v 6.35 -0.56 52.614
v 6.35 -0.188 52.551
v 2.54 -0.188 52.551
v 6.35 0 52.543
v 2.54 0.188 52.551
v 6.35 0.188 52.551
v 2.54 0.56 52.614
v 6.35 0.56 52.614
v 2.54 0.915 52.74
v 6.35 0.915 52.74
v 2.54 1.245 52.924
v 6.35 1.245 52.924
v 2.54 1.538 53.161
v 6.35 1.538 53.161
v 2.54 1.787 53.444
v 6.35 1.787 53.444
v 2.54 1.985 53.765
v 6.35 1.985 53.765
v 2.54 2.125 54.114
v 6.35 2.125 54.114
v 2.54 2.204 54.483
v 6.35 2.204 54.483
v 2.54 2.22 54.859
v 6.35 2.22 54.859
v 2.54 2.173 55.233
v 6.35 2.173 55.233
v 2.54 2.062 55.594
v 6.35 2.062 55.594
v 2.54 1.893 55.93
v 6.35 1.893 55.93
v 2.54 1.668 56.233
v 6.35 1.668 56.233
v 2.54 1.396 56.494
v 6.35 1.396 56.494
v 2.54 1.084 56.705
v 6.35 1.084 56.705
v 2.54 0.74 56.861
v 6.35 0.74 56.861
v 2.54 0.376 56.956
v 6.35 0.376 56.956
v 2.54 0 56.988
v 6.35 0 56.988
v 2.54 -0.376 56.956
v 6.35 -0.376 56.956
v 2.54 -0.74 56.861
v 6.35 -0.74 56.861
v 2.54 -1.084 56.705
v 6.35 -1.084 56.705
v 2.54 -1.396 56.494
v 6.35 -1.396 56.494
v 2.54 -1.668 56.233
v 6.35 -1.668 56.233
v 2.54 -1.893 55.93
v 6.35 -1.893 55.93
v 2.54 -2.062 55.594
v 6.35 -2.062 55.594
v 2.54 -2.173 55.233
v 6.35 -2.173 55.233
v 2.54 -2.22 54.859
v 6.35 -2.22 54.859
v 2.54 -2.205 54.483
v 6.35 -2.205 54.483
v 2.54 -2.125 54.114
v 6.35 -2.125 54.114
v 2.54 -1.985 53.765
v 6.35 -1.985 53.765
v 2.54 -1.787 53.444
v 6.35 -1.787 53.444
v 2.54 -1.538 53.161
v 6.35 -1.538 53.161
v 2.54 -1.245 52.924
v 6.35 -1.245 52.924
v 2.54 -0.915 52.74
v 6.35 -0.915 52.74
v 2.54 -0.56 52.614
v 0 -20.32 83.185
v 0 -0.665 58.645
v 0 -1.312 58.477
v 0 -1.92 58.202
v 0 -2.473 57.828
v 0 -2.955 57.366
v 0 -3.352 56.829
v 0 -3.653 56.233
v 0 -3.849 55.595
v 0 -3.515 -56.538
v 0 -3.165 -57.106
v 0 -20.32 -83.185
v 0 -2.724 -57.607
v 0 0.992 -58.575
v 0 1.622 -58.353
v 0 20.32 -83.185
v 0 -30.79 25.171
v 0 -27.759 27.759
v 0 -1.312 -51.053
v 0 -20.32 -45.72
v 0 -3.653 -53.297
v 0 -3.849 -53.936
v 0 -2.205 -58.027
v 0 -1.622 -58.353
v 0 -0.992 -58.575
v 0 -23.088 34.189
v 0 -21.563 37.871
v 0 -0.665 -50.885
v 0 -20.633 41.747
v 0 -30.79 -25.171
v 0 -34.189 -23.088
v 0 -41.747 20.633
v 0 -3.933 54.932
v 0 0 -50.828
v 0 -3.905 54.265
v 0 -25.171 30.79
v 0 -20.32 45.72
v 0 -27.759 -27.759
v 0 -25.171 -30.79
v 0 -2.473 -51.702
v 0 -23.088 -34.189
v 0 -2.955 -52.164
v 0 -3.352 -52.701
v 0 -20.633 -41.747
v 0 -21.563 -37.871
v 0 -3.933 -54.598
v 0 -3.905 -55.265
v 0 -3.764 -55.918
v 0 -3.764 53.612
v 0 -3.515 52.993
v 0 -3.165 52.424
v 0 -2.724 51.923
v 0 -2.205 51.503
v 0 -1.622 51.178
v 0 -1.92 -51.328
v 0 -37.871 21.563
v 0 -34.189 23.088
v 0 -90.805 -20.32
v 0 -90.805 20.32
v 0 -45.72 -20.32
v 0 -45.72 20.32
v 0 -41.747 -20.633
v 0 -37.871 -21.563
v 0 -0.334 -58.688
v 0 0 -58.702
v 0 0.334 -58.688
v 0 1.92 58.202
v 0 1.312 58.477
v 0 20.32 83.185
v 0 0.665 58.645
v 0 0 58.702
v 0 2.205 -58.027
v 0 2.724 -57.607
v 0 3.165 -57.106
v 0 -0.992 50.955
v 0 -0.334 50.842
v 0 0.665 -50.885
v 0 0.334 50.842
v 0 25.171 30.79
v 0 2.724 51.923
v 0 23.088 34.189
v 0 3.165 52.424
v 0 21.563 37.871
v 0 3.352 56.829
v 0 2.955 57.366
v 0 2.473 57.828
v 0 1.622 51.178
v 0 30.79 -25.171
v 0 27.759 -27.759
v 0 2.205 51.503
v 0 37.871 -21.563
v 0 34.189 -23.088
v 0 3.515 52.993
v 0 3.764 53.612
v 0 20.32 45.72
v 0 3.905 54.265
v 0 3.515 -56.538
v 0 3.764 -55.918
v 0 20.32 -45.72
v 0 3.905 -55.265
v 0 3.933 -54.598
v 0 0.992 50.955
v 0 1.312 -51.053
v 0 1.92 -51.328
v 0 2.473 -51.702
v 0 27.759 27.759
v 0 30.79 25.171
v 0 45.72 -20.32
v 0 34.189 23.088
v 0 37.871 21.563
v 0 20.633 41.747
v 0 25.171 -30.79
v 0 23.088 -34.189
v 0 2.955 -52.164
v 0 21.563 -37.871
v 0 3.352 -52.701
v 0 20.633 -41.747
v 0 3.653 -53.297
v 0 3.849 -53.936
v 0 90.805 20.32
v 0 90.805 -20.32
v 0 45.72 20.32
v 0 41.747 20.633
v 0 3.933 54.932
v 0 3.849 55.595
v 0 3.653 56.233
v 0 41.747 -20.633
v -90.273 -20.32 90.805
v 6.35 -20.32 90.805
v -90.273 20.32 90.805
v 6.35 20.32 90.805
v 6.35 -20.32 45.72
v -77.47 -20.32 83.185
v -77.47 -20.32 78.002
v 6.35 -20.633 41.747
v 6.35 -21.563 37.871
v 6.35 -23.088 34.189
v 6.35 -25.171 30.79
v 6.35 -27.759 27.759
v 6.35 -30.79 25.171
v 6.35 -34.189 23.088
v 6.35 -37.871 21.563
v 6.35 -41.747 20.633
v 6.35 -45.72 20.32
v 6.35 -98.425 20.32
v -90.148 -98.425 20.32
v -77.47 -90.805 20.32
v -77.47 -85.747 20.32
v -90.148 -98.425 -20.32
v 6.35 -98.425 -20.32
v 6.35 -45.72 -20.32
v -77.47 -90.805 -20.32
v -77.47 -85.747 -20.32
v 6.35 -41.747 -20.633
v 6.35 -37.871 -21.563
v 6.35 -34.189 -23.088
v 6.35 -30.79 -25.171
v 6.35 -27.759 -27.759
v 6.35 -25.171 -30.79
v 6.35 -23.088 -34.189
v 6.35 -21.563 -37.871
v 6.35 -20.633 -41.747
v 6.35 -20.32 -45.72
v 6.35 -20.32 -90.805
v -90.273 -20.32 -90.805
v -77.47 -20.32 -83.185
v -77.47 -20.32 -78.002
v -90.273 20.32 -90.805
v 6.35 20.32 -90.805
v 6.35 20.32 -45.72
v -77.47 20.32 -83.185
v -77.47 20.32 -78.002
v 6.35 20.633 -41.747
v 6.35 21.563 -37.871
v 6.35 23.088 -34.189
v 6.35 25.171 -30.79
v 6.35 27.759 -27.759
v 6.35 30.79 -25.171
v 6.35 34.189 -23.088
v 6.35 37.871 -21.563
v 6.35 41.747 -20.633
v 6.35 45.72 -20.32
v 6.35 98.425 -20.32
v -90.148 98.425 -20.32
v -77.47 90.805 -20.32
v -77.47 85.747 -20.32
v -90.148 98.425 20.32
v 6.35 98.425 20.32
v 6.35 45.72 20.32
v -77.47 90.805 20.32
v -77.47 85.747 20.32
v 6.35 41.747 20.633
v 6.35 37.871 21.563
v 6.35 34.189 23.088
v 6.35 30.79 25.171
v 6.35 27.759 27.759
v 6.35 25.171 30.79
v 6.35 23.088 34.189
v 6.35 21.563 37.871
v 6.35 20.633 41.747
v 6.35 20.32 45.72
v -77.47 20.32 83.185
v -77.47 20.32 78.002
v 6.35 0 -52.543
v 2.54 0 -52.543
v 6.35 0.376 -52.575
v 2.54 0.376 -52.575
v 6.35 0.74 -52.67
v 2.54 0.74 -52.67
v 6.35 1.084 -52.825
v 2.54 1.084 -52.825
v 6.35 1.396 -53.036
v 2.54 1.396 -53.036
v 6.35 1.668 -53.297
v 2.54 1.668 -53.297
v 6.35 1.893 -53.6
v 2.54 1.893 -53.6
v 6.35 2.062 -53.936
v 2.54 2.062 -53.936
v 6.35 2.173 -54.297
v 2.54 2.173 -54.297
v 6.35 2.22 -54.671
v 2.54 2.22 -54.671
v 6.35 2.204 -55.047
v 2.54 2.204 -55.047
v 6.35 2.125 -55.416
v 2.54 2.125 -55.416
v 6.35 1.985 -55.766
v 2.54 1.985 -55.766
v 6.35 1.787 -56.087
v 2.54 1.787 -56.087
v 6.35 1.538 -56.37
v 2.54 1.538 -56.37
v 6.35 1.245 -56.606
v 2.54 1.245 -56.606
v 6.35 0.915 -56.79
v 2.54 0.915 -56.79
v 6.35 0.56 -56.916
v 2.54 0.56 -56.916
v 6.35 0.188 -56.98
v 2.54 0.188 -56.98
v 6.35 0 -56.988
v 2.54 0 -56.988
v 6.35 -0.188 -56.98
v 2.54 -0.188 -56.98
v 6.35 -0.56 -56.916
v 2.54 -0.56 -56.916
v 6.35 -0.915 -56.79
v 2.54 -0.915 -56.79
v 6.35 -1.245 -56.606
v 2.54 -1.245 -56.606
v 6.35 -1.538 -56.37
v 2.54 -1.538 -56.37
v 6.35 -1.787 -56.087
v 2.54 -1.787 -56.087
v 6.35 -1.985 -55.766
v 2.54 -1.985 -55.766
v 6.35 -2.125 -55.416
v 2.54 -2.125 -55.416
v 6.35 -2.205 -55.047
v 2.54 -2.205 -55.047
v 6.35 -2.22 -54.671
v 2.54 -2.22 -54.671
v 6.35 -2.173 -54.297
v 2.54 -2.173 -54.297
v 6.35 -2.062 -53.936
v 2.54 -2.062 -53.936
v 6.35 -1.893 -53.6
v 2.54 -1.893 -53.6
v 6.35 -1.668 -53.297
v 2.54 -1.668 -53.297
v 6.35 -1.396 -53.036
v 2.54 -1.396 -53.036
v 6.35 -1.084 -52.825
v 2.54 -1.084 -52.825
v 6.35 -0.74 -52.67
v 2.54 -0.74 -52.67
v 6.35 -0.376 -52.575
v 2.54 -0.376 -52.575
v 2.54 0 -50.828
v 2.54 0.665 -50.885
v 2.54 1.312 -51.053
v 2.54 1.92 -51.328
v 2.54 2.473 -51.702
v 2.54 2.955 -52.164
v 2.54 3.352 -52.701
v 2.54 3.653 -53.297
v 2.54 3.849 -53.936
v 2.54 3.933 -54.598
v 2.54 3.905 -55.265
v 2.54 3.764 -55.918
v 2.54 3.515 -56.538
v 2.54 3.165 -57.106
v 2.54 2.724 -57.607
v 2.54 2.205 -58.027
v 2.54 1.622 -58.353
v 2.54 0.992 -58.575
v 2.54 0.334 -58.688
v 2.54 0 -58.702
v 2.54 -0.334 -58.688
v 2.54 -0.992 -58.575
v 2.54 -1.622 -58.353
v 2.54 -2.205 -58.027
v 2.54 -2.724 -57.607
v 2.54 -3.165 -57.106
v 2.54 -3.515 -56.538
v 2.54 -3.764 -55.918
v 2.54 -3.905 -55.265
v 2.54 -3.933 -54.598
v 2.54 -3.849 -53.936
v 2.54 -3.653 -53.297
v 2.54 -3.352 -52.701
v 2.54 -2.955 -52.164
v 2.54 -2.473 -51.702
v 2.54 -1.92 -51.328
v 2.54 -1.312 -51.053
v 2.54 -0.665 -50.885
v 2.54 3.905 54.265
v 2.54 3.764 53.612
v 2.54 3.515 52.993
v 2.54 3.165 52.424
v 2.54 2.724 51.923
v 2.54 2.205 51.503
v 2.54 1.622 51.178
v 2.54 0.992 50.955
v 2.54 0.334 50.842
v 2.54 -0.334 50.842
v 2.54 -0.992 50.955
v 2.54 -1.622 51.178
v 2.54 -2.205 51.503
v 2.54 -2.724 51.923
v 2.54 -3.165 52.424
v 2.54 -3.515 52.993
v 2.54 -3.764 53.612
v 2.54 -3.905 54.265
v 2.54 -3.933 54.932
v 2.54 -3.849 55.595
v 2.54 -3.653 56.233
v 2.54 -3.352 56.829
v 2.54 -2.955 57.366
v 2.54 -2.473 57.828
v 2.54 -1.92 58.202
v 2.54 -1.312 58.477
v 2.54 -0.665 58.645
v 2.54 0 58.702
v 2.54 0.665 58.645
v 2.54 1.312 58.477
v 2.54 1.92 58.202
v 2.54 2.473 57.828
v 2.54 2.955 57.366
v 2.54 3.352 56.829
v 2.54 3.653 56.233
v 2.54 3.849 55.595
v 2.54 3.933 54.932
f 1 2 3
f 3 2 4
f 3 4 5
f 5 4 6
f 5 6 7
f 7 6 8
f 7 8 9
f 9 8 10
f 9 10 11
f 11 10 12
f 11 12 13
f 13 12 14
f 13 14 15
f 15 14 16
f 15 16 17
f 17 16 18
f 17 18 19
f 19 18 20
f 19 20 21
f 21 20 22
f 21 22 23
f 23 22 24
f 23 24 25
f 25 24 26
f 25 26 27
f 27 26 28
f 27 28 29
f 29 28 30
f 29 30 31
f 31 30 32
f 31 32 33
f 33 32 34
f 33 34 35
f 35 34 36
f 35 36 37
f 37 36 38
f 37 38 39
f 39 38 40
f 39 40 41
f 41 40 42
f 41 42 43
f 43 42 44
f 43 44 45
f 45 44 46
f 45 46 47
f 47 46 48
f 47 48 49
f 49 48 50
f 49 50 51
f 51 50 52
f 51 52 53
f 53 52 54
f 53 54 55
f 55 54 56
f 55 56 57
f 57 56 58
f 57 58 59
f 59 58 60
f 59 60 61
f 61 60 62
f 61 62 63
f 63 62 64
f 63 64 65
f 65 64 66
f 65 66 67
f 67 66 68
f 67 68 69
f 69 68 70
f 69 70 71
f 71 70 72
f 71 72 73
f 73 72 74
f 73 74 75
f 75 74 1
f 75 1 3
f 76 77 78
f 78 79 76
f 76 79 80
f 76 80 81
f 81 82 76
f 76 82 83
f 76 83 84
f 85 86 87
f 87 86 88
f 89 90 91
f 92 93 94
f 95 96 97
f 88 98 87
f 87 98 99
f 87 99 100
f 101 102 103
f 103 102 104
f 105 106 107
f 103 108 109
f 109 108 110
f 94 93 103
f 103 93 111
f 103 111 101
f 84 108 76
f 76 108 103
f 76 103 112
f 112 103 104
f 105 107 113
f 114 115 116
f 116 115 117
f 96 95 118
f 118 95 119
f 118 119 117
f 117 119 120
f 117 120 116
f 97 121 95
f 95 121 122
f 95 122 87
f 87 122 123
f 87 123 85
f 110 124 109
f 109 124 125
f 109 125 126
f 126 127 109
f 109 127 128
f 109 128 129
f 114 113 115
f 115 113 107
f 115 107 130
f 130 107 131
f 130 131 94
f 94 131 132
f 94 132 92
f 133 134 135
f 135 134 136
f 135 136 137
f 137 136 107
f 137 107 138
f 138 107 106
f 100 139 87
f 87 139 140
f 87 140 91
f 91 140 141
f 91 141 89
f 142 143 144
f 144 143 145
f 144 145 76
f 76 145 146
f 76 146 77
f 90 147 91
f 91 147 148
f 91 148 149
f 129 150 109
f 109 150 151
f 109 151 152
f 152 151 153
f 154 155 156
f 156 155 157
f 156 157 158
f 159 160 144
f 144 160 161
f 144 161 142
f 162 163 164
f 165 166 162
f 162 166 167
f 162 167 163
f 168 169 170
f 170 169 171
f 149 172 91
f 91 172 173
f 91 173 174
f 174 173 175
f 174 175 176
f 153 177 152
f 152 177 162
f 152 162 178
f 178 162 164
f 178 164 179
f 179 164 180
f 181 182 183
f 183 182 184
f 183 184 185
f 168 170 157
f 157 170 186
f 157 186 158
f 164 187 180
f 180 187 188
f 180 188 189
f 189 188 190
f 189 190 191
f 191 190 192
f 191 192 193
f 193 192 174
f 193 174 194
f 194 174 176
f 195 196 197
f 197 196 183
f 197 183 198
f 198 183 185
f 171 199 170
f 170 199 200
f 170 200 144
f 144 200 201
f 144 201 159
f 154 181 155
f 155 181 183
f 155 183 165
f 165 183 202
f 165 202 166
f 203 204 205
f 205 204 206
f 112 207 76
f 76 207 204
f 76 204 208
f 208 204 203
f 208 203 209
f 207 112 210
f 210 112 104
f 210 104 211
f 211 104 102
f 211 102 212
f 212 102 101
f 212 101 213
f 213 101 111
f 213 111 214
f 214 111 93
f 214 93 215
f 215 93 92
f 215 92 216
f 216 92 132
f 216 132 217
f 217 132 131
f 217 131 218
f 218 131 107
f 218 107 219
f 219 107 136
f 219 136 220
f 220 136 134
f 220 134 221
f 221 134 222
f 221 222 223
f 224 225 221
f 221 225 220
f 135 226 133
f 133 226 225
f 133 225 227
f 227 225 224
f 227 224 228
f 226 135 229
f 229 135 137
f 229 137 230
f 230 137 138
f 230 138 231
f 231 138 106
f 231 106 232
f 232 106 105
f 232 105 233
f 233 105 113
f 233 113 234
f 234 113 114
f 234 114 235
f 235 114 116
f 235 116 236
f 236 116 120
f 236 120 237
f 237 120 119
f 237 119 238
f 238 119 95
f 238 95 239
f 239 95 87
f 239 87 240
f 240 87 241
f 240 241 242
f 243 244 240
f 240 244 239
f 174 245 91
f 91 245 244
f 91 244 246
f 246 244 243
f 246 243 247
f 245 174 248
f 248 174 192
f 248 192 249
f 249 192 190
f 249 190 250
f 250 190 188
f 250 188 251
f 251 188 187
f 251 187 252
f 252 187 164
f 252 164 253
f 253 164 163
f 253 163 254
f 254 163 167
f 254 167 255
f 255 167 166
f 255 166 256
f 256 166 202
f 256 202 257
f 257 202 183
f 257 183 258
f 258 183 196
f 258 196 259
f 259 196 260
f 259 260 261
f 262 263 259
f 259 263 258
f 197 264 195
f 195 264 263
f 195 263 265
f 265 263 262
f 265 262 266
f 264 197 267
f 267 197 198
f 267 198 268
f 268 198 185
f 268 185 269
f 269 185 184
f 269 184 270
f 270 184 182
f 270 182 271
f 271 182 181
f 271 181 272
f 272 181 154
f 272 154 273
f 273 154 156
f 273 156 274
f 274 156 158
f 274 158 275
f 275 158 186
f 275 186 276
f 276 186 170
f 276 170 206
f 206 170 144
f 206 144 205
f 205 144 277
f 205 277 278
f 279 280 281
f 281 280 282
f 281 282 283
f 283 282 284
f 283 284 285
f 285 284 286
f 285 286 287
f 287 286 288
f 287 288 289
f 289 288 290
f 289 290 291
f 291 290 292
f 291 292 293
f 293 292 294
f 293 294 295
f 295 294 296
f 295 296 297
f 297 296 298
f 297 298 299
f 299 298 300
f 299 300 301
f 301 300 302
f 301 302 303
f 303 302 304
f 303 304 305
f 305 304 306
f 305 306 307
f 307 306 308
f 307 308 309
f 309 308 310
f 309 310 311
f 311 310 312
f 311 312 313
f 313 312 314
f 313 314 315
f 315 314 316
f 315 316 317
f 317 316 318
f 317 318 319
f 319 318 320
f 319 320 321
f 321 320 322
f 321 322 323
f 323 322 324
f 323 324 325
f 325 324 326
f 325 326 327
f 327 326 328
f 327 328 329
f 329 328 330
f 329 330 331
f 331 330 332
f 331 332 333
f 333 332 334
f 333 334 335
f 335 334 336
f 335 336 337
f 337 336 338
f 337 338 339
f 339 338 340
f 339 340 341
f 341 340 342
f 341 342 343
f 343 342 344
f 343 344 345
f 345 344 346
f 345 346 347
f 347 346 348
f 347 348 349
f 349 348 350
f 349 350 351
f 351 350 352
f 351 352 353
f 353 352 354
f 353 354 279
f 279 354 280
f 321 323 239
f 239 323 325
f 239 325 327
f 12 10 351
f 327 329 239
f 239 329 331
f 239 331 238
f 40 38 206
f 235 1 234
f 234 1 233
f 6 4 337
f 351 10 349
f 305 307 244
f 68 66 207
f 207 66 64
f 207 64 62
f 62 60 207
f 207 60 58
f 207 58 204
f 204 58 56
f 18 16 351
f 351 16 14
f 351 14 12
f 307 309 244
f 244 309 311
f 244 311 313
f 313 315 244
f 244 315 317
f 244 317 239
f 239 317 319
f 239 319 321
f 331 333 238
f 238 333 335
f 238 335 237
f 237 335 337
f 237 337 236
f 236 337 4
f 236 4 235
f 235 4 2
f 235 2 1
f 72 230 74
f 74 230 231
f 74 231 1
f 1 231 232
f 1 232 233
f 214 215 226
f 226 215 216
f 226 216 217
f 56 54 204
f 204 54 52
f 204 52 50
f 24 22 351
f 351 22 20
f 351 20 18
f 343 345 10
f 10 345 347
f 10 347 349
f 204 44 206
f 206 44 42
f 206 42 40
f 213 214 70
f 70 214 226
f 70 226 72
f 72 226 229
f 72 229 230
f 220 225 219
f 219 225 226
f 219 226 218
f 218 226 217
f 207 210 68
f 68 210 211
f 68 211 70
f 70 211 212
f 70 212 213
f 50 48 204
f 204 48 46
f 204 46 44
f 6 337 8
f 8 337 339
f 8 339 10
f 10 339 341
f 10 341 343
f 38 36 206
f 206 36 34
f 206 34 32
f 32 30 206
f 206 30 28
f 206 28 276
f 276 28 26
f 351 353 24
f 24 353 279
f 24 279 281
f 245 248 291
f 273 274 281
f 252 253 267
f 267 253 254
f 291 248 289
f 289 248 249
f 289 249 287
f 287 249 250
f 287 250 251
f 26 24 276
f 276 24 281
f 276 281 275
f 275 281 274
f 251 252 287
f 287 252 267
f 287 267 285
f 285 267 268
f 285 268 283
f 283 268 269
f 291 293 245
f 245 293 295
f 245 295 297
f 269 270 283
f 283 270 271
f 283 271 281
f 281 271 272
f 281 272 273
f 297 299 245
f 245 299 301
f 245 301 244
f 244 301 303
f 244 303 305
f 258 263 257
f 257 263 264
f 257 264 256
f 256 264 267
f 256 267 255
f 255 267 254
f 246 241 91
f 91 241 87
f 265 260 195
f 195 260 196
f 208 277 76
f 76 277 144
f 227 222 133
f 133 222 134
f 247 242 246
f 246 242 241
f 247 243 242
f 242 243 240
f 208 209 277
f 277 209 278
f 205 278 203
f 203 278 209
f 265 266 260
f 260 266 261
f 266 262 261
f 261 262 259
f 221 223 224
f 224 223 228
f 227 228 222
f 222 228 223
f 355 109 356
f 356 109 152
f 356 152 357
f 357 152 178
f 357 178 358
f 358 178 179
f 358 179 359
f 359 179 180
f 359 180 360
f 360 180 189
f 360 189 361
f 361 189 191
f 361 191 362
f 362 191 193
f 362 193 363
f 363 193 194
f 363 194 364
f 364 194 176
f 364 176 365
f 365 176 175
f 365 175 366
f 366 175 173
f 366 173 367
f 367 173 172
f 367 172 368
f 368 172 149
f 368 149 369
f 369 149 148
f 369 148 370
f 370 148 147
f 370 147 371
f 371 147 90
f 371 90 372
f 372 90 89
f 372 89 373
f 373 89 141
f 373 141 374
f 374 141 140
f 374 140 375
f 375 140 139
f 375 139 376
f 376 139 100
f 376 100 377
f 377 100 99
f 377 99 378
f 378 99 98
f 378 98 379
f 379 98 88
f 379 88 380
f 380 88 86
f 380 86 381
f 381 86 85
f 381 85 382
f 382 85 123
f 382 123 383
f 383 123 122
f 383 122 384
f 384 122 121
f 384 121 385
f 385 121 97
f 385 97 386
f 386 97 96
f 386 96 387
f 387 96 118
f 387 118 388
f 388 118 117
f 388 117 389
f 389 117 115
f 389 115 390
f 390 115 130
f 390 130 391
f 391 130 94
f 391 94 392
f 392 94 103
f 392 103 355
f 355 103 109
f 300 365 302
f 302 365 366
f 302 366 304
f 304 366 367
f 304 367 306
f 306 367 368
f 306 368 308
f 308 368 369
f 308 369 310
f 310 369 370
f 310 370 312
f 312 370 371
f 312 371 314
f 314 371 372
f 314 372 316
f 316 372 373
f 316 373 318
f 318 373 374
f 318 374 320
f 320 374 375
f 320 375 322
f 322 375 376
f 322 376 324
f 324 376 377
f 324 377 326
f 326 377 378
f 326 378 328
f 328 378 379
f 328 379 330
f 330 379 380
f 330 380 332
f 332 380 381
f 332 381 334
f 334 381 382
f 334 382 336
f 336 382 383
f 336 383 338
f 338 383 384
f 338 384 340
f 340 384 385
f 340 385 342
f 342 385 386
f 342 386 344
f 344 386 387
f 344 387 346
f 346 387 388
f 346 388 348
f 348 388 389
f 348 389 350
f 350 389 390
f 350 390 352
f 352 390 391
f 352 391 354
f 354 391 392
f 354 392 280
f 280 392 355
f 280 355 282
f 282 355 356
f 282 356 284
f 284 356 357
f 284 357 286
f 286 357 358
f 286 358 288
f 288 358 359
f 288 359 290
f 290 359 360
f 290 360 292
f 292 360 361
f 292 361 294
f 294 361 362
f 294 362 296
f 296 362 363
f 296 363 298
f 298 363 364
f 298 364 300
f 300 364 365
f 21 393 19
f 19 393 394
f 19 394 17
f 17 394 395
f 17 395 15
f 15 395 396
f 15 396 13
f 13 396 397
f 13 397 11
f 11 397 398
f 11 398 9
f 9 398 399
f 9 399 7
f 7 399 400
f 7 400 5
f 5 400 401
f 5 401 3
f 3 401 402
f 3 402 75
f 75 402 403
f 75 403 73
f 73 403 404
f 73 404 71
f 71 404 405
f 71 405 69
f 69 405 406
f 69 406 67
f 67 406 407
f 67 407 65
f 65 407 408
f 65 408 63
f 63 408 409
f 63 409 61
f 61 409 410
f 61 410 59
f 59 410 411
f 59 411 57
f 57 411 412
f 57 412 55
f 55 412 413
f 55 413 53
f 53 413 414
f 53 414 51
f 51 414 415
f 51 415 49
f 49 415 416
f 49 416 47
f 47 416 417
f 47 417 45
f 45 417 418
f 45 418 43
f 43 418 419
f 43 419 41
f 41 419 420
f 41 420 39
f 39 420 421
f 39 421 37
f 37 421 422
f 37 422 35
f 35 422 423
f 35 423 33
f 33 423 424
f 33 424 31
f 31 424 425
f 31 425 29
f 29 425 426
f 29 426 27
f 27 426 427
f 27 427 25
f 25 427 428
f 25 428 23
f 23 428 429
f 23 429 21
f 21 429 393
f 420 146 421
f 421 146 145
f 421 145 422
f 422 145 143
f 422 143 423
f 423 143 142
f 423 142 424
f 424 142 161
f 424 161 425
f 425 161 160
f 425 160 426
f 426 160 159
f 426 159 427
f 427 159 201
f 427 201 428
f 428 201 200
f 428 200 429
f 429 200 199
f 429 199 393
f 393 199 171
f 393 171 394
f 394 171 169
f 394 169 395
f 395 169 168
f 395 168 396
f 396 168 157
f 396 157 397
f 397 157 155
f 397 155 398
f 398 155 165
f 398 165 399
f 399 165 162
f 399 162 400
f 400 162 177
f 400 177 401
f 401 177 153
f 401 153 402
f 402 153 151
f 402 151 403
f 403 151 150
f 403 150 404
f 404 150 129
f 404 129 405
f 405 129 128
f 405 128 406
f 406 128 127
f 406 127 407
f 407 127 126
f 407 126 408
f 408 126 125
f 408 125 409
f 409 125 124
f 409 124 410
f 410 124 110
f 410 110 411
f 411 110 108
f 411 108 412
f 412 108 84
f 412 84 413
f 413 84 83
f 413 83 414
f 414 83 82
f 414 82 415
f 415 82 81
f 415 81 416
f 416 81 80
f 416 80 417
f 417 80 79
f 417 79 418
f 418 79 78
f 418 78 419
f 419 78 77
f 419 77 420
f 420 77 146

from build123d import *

# Parameters (mm, degrees)
SKETCH2_R           = 2.2225
BOSS_EXTRUDE1_DEPTH = 6.35
SKETCH3_W           = 7.62
SKETCH3_H           = 40.64
SKETCH3_W_2         = 40.64
SKETCH3_H_2         = 7.62
BOSS_EXTRUDE2_DEPTH = 77.47
BOSS_EXTRUDE5_DEPTH = 40.64
BOSS_EXTRUDE6_DEPTH = 40.64
SKETCH8_R           = 3.937
CUT_EXTRUDE1_DEPTH  = 2.54


with BuildPart() as part:
    # Sketch2 → Boss-Extrude1 (new body)
    with BuildSketch(Plane(origin=(0, 0, 0), x_dir=(0, 0, -1), z_dir=(1, 0, 0))):
        with BuildLine():
            Line((-20.32, 98.425), (-20.32, 45.72))
            ThreePointArc((-20.32, 45.72), (-27.759487758, 27.759487758), (-45.72, 20.32))
            Line((-45.72, 20.32), (-90.805, 20.32))
            Line((-90.805, 20.32), (-90.805, -20.32))
            Line((-90.805, -20.32), (-45.72, -20.32))
            ThreePointArc((-45.72, -20.32), (-27.759487758, -27.759487758), (-20.32, -45.72))
            Line((-20.32, -45.72), (-20.32, -98.425))
            Line((-20.32, -98.425), (20.32, -98.425))
            Line((20.32, -98.425), (20.32, -45.72))
            ThreePointArc((20.32, -45.72), (27.759487758, -27.759487758), (45.72, -20.32))
            Line((45.72, -20.32), (90.805, -20.32))
            Line((90.805, -20.32), (90.805, 20.32))
            Line((90.805, 20.32), (45.72, 20.32))
            ThreePointArc((45.72, 20.32), (27.759487758, 27.759487758), (20.32, 45.72))
            Line((20.32, 45.72), (20.32, 98.425))
            Line((20.32, 98.425), (-20.32, 98.425))
        make_face()
        with Locations((54.765086962, 0)):
            Circle(SKETCH2_R, mode=Mode.SUBTRACT)
        with Locations((-54.765086962, 0)):
            Circle(SKETCH2_R, mode=Mode.SUBTRACT)
    extrude(amount=BOSS_EXTRUDE1_DEPTH)

    # Sketch3 → Boss-Extrude2 (add)
    with BuildSketch(Plane.ZY):
        with Locations((-86.995, 0)):
            Rectangle(SKETCH3_W, SKETCH3_H)
        with Locations((0, 94.615)):
            Rectangle(SKETCH3_W_2, SKETCH3_H_2)
        with Locations((86.995, 0)):
            Rectangle(SKETCH3_W, SKETCH3_H)
        with Locations((0, -94.615)):
            Rectangle(SKETCH3_W_2, SKETCH3_H_2)
    extrude(amount=BOSS_EXTRUDE2_DEPTH)

    # Sketch6 → Boss-Extrude5 (add)
    with BuildSketch(Plane(origin=(0, -20.32, 0), x_dir=(-1, 0, 0), z_dir=(0, -1, 0))):
        Polygon((77.47, 90.805), (90.273301898, 90.805), (77.47, 78.001698102), align=None)
        Polygon((90.273301898, -90.805), (77.47, -78.001698102), (77.47, -90.805), align=None)
    extrude(amount=-BOSS_EXTRUDE5_DEPTH)

    # Sketch7 → Boss-Extrude6 (add)
    with BuildSketch(Plane(origin=(0, 0, -20.32), x_dir=(-1, 0, 0), z_dir=(0, 0, -1))):
        Polygon((77.47, -98.425), (90.148305193, -98.425), (77.47, -85.746694807), align=None)
        Polygon((90.148305193, 98.425), (77.47, 85.746694807), (77.47, 98.425), align=None)
    extrude(amount=-BOSS_EXTRUDE6_DEPTH)

    # Sketch8 → Cut-Extrude1 (cut)
    with BuildSketch(Plane.ZY):
        with Locations((54.765086962, 0)):
            Circle(SKETCH8_R)
        with Locations(Location((-54.765086962, 0, 0), (0, 0, 180))):
            Circle(SKETCH8_R)
    extrude(amount=-CUT_EXTRUDE1_DEPTH, mode=Mode.SUBTRACT)


solid = part.part
